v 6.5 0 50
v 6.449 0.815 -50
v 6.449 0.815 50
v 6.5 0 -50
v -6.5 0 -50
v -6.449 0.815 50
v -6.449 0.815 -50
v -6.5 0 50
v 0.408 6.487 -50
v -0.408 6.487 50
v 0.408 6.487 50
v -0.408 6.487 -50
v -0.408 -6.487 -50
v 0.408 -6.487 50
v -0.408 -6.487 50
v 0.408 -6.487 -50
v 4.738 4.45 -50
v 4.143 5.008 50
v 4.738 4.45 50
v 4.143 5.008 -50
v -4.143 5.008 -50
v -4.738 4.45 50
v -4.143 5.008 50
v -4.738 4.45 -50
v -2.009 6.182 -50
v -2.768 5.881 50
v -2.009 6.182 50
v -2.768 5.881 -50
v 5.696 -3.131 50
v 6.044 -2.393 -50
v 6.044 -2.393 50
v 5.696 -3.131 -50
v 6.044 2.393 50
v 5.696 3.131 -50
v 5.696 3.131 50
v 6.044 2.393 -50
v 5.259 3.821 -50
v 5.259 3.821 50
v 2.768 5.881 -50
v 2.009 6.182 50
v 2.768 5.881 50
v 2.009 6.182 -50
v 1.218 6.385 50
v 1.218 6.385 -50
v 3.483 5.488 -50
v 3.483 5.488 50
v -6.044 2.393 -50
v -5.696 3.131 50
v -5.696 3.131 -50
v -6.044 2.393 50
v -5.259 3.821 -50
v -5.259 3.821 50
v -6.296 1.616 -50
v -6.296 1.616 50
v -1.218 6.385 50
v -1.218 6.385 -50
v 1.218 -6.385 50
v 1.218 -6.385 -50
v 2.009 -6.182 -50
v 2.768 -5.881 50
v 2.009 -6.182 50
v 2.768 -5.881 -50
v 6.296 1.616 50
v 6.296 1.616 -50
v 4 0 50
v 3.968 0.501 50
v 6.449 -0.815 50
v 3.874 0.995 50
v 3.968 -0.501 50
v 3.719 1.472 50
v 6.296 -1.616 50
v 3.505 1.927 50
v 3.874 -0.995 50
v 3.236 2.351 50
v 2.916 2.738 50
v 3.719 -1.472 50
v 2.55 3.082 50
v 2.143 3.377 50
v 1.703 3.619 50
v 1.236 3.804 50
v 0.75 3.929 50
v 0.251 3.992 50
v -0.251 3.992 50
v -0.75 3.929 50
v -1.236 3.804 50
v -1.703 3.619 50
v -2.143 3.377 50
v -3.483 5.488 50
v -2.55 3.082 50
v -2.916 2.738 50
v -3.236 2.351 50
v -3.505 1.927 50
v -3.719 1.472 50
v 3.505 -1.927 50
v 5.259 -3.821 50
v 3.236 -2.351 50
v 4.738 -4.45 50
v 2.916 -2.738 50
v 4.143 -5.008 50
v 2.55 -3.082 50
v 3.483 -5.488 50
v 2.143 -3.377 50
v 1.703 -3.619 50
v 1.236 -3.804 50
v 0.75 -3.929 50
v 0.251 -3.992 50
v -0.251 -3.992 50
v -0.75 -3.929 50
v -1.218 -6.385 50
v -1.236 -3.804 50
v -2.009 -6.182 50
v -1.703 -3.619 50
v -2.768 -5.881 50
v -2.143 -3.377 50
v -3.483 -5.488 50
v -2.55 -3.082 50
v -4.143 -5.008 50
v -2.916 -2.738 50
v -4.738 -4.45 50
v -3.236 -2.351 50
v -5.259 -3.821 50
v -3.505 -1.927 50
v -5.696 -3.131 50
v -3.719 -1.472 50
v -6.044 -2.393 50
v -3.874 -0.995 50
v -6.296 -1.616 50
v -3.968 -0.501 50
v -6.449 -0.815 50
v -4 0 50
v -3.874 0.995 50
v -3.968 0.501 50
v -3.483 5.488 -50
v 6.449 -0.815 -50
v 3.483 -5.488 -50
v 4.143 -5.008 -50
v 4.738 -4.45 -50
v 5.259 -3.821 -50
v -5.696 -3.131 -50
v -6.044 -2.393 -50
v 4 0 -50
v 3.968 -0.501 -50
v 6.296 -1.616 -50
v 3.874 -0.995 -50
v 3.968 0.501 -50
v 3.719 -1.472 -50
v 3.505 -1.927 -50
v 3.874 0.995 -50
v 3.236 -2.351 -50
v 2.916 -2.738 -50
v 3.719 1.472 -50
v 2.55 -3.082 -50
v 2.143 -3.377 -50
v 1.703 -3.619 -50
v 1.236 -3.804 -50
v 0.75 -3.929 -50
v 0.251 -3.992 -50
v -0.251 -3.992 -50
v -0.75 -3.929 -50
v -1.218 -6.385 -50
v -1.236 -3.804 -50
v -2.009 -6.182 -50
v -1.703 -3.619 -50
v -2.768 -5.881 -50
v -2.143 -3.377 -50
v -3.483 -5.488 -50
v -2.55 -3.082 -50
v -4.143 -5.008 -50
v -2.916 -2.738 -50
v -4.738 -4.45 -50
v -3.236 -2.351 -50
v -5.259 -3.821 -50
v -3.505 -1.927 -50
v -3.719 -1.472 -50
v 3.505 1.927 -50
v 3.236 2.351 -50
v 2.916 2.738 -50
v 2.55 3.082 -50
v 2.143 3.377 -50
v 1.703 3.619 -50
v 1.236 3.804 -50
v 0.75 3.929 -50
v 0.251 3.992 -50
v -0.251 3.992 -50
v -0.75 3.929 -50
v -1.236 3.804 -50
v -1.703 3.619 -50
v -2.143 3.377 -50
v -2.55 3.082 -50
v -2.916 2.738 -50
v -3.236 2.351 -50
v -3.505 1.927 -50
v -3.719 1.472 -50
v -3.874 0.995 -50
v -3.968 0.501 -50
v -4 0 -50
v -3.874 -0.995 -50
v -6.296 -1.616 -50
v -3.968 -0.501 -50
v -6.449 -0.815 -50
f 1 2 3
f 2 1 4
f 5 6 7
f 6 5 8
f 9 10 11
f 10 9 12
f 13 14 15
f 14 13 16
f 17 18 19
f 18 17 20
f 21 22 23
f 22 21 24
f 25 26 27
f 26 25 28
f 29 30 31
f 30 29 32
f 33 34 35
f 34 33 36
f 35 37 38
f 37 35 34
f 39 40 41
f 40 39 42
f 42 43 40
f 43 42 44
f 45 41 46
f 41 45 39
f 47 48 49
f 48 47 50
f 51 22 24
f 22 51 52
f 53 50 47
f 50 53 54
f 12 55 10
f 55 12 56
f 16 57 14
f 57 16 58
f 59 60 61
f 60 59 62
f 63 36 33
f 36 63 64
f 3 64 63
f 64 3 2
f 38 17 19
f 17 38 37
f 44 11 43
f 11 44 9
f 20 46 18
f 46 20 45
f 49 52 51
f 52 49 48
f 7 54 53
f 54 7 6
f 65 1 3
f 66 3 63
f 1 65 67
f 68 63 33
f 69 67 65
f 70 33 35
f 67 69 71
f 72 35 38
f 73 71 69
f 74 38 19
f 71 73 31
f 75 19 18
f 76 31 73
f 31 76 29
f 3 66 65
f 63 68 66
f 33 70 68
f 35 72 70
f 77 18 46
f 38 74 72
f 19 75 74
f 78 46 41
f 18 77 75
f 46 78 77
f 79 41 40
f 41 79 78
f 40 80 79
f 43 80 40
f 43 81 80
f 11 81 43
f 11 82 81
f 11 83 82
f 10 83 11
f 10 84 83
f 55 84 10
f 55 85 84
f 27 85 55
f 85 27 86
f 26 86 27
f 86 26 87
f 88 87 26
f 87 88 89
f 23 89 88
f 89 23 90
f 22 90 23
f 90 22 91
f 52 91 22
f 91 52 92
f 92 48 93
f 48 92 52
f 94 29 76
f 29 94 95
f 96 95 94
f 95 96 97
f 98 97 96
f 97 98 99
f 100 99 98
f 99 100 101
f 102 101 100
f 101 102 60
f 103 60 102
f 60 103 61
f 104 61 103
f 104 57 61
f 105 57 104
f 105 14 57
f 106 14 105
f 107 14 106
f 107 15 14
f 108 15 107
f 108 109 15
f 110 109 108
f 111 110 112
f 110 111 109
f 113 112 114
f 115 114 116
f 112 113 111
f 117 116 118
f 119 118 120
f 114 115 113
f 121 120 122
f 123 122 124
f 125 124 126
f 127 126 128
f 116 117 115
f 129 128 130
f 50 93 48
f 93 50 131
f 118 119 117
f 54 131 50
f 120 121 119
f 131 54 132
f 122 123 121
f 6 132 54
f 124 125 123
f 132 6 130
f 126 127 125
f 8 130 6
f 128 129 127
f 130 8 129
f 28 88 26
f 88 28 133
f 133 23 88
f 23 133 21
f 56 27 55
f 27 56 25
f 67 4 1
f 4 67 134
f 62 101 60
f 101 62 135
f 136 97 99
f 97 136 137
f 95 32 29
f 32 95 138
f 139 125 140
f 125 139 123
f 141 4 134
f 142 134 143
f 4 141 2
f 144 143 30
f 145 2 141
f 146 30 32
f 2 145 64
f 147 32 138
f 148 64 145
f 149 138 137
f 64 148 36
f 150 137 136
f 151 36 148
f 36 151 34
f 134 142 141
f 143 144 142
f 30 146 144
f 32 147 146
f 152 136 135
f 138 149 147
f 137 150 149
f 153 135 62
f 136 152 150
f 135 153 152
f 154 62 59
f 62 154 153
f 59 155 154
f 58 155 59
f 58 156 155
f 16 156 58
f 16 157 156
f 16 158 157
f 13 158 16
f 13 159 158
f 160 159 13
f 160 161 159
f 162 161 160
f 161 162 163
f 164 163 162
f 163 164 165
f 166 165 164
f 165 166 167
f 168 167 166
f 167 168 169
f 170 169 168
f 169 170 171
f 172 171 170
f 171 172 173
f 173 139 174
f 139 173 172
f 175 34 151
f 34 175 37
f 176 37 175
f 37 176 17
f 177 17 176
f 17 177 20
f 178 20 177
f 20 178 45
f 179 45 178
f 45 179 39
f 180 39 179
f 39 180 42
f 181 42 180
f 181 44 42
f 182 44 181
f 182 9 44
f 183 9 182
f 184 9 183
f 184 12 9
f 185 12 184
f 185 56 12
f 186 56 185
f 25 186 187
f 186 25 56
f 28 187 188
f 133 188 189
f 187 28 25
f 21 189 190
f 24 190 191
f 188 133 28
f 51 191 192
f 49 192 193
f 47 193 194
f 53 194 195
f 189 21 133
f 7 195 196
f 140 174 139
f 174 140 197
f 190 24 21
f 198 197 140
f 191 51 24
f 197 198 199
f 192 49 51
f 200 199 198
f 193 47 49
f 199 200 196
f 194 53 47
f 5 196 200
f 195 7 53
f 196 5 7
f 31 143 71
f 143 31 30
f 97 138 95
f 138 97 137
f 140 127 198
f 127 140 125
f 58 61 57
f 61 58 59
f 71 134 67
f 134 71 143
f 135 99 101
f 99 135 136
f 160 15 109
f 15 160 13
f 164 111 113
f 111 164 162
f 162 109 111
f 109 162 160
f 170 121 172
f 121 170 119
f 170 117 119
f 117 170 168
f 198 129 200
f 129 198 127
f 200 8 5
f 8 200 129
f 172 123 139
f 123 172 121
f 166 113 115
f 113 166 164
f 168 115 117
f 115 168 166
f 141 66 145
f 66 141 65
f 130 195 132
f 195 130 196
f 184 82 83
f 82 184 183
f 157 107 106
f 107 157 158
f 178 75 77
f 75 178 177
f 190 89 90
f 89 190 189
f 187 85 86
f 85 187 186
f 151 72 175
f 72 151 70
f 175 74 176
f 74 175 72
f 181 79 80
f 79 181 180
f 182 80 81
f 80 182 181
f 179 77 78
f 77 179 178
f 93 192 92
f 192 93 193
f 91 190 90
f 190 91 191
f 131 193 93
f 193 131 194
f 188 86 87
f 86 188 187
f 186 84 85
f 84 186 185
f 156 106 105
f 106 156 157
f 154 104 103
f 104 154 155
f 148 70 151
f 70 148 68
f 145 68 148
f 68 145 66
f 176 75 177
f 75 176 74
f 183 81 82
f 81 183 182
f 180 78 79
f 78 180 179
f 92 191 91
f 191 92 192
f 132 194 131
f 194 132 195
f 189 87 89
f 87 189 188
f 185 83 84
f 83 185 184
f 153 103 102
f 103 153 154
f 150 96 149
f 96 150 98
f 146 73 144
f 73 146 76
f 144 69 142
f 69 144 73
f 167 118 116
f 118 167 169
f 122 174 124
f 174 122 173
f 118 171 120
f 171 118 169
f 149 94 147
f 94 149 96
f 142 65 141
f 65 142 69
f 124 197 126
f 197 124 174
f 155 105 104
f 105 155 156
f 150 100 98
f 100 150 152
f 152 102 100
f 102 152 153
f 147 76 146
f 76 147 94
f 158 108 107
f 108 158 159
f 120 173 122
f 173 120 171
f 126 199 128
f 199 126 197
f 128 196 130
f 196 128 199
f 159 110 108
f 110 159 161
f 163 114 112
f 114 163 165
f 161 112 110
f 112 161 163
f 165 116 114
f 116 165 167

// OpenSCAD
$fn = 50;


difference() {
	union() {
		translate(v = [0, 0, -50.0000000000]) {
			cylinder(h = 100, r = 6.5000000000);
		}
	}
	union() {
		translate(v = [0, 0, -100.0000000000]) {
			cylinder(h = 200, r = 4);
		}
	}
}
